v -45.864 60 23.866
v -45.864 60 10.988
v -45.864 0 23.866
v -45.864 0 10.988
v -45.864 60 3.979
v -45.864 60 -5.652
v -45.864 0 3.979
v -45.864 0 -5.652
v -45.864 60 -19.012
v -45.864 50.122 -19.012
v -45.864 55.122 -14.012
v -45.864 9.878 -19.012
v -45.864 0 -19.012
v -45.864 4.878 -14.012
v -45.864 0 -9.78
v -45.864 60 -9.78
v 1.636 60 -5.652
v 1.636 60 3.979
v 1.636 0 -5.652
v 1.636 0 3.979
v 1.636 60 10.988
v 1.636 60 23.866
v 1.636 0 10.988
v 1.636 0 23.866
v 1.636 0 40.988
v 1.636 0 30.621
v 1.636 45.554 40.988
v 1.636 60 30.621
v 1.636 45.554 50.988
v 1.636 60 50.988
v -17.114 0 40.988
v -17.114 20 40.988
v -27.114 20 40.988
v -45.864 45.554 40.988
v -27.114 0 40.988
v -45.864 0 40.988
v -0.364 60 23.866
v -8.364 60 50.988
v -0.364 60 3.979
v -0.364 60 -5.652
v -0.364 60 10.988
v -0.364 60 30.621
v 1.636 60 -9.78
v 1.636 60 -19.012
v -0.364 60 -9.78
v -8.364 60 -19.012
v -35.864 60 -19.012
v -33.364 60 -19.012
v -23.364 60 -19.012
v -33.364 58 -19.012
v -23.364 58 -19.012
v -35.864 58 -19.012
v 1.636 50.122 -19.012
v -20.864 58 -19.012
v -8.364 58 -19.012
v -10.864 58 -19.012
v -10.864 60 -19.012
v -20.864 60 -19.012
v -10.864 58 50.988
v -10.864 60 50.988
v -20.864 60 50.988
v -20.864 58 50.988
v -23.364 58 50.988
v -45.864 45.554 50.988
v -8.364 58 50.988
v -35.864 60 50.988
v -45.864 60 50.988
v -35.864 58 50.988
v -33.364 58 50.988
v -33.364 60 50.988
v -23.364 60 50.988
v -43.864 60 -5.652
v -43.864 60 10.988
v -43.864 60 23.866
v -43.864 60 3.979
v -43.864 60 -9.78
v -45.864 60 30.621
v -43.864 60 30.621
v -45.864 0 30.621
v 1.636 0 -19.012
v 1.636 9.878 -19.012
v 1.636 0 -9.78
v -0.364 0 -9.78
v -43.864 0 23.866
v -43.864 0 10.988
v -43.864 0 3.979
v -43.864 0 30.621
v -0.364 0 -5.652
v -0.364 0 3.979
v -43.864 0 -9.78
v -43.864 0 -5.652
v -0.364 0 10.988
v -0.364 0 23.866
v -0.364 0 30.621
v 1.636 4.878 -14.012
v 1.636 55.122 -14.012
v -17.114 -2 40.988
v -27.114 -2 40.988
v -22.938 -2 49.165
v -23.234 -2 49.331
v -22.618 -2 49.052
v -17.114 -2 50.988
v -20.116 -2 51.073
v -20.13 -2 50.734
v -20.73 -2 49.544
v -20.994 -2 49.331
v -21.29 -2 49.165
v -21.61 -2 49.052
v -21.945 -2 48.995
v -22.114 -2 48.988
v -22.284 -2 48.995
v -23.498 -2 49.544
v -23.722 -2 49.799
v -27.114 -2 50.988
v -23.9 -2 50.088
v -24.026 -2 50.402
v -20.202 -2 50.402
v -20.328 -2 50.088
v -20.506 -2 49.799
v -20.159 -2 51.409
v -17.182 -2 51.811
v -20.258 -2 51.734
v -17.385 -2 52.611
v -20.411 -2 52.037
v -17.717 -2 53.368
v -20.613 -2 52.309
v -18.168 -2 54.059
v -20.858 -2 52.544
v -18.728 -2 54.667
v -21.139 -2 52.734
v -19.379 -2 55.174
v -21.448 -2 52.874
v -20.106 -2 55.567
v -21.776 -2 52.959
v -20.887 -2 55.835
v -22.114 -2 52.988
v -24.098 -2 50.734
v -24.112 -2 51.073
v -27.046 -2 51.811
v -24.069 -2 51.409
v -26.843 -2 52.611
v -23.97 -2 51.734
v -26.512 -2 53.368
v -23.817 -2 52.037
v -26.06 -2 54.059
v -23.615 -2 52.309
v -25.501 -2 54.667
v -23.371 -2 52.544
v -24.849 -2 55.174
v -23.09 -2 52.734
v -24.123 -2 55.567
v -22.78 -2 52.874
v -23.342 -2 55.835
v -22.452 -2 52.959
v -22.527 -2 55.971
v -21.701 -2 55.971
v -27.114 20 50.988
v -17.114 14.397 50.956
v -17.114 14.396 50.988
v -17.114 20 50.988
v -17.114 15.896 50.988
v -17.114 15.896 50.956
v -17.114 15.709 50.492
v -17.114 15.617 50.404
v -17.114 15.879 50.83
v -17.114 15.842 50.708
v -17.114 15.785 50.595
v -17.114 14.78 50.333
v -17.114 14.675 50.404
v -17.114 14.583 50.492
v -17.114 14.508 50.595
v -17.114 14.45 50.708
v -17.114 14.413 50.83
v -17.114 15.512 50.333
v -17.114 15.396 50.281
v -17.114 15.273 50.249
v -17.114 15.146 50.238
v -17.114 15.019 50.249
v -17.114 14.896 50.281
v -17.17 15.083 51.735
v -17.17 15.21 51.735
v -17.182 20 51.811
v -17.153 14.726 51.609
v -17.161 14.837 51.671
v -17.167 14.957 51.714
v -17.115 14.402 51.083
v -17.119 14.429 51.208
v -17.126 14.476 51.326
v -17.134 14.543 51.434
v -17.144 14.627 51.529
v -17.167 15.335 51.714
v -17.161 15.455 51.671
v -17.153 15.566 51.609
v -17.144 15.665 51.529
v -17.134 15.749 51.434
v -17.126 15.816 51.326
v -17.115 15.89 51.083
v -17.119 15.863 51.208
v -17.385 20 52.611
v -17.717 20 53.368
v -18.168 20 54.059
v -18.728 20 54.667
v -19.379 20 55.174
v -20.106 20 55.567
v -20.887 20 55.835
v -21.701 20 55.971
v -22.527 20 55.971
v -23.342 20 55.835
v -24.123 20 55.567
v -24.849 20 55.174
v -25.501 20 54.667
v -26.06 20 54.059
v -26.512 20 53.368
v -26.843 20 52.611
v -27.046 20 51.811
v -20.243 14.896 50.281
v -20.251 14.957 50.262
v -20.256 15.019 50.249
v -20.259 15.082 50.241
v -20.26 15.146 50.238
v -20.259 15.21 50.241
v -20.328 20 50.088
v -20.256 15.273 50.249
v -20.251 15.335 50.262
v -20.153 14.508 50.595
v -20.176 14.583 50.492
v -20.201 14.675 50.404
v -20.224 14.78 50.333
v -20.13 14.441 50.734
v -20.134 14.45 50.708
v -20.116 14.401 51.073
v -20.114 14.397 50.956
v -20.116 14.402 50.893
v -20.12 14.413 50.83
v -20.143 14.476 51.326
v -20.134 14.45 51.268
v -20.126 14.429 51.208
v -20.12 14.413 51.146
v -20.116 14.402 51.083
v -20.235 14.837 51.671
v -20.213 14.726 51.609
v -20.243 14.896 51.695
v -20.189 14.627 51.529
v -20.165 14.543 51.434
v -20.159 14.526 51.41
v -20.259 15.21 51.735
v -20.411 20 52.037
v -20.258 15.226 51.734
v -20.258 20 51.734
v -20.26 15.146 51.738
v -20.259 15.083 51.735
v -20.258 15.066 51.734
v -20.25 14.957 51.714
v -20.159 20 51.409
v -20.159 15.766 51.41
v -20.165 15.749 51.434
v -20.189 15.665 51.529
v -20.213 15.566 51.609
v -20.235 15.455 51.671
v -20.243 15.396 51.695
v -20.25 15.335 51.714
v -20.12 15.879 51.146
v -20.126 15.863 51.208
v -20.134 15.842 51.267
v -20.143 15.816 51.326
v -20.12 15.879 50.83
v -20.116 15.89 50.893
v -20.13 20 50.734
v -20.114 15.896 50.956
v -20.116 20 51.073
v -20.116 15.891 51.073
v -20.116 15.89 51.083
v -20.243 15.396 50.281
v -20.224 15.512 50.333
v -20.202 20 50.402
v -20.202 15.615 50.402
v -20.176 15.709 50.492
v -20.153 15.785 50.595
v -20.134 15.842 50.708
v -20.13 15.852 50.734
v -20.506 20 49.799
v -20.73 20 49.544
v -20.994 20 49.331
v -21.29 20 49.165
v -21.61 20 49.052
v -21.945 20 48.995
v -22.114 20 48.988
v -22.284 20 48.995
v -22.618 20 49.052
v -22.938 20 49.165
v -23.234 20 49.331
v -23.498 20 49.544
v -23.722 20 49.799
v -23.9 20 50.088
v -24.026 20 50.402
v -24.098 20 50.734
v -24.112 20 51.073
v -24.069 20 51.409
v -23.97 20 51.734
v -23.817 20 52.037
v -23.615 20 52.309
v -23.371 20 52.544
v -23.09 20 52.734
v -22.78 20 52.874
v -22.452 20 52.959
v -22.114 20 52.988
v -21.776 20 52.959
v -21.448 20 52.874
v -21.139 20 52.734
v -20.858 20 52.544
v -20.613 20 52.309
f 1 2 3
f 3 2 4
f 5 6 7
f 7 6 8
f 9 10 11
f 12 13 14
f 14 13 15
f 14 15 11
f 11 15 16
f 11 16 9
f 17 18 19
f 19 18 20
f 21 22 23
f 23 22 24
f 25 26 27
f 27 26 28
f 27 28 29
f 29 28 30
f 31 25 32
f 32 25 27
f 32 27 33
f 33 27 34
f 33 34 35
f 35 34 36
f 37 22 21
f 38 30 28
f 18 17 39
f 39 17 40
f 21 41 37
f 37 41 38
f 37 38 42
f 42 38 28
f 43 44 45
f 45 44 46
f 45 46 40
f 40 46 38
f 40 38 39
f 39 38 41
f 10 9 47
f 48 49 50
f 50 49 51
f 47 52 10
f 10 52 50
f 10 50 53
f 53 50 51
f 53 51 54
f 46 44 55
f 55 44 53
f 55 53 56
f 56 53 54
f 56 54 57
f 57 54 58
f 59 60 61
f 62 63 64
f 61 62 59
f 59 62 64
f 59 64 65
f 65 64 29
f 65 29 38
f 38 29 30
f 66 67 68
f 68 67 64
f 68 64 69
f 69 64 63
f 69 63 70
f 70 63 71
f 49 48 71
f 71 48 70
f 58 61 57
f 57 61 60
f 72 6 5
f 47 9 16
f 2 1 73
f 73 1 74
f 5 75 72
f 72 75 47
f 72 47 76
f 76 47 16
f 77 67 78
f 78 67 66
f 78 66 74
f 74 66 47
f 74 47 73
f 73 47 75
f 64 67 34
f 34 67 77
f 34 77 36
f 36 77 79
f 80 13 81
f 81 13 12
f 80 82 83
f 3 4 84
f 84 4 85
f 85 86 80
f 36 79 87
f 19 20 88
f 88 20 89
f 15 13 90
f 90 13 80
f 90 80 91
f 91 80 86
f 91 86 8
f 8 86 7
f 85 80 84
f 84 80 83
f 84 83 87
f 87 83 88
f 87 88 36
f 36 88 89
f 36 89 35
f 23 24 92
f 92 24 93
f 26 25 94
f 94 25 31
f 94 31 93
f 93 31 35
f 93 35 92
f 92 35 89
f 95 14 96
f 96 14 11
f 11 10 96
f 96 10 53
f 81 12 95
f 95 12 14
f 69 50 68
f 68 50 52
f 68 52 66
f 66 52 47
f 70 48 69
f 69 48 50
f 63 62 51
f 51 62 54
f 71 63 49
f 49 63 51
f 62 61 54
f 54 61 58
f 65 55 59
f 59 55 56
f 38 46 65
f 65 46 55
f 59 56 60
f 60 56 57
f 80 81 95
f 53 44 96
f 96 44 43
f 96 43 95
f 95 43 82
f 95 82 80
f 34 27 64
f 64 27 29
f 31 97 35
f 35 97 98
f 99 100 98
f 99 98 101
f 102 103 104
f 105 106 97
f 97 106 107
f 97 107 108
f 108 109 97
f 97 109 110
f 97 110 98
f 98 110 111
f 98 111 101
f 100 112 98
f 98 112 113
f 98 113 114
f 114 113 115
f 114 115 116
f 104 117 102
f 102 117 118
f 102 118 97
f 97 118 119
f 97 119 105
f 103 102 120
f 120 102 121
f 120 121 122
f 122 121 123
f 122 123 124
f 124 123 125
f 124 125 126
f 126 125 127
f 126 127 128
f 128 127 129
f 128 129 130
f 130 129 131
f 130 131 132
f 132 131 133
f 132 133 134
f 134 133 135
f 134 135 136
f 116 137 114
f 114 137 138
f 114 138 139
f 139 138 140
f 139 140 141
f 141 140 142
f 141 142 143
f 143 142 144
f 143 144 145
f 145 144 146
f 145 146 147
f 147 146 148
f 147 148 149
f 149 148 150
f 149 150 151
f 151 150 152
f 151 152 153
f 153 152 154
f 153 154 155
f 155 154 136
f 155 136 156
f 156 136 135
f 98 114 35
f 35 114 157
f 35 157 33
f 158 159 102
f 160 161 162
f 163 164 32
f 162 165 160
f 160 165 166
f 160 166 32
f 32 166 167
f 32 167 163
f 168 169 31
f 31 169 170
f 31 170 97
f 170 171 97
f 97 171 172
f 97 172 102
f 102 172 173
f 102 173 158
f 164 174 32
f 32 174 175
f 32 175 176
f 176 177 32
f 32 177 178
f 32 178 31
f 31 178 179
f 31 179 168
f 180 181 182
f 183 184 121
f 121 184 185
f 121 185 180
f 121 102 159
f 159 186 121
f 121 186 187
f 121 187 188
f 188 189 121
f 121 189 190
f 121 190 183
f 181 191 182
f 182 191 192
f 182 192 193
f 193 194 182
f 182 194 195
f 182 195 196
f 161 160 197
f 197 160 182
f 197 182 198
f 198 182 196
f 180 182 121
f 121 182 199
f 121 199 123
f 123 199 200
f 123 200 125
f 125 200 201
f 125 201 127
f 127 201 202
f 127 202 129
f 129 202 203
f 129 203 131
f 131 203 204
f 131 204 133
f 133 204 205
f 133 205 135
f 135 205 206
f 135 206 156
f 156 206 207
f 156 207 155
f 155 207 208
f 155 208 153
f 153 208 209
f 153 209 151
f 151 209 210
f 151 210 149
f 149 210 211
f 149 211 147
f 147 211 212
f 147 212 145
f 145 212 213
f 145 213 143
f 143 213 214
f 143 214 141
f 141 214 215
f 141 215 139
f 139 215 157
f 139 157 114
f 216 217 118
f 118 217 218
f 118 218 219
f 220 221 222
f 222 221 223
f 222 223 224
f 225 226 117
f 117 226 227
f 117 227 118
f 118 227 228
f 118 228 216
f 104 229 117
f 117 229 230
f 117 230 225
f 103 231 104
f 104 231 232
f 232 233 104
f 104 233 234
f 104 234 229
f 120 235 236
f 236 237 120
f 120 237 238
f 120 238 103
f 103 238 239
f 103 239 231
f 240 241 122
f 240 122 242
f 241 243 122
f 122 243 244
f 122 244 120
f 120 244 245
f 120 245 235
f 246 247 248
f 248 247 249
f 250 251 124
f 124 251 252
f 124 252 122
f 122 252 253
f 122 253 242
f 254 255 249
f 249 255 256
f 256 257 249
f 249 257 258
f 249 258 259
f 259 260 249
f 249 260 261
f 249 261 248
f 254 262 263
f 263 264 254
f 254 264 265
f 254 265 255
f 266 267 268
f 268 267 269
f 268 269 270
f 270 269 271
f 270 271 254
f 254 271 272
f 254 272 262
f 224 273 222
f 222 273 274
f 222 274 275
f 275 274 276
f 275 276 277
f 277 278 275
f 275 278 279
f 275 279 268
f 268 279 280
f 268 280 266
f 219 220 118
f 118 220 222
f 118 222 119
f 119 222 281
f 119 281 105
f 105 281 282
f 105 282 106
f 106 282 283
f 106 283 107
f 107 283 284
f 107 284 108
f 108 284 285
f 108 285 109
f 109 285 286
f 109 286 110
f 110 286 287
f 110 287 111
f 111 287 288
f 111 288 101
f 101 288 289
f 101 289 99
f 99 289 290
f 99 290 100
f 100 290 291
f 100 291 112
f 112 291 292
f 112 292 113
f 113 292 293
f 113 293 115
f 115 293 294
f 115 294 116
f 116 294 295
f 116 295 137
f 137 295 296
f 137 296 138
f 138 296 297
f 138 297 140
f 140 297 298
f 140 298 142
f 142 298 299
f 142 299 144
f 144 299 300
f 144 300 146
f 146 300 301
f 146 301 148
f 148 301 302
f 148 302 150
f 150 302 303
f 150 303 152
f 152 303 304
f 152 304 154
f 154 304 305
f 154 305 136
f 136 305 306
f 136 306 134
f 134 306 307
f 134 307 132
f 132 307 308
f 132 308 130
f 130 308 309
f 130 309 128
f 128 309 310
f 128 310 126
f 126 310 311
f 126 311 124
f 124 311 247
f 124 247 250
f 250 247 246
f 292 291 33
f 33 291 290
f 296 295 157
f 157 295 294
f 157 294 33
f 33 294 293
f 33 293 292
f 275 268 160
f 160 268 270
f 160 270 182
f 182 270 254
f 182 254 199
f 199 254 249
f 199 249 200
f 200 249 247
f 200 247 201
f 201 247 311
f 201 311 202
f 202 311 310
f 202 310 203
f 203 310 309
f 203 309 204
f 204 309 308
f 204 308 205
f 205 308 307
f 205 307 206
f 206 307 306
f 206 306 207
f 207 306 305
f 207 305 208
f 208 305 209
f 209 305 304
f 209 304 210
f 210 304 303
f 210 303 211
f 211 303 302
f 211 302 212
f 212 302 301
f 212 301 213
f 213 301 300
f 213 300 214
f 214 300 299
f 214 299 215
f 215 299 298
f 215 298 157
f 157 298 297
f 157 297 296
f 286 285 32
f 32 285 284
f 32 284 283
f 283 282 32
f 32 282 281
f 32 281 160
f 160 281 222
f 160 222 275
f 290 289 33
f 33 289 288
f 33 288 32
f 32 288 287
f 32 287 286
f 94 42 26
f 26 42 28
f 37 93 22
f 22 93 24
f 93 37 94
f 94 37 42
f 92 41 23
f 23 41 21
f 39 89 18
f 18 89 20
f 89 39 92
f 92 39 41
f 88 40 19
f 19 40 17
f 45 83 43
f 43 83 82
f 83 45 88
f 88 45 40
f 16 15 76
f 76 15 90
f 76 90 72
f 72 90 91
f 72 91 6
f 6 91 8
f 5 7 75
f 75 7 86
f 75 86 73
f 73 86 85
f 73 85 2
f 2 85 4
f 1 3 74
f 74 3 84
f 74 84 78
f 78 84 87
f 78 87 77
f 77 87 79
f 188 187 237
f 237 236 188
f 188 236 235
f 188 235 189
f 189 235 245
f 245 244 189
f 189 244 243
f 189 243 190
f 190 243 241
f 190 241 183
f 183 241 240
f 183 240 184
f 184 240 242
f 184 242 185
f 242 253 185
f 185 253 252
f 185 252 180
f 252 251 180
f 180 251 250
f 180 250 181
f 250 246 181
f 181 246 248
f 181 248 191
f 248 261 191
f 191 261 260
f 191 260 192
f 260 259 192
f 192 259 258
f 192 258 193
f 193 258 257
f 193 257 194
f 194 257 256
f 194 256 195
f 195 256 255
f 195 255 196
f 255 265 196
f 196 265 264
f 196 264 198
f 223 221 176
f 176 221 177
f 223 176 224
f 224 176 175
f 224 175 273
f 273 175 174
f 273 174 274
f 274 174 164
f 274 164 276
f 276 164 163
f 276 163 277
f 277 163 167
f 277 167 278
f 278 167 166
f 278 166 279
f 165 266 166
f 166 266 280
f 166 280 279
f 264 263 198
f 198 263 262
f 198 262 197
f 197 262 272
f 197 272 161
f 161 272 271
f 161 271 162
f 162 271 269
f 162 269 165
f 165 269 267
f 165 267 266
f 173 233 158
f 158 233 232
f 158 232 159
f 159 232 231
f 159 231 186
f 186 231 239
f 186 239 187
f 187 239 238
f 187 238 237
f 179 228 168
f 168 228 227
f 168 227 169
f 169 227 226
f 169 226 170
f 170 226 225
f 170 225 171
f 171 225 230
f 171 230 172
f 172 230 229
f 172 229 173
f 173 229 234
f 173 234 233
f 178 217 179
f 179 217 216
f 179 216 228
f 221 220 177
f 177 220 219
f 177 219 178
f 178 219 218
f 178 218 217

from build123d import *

# Parameters (mm, degrees)
SKETCH1_W                = 50
SKETCH1_H                = 70
BOSS_EXTRUDE1_DEPTH      = 60
CUT_EXTRUDE1_DEPTH       = 60
SKETCH4_W                = 2.5
SKETCH4_H                = 2
SKETCH4_H_2              = 60
CUT_EXTRUDE2_DEPTH       = 95
SKETCH7_W                = 47.5
SKETCH7_H                = 45.554164346
CUT_EXTRUDE3_DEPTH       = 10
SKETCH8_R                = 2
BOSS_EXTRUDE2_DEPTH      = 2
BOSS_EXTRUDE2_DEPTH_BACK = 20
SKETCH9_W                = 6.754259693
SKETCH9_H                = 60
SKETCH9_W_2              = 7.009150451
SKETCH9_W_3              = 4.127603145
CUT_EXTRUDE4_DEPTH       = 2
SKETCH10_W               = 2
SKETCH10_H               = 4.127603145
SKETCH10_H_2             = 7.009150451
SKETCH10_H_3             = 6.754259693
CUT_EXTRUDE5_DEPTH       = 71
SKETCH11_R               = 0.75
CUT_EXTRUDE6_DEPTH       = 4


with BuildPart() as part:
    # Sketch1 → Boss-Extrude1 (new body)
    with BuildSketch(Plane(origin=(0, 0, 0), x_dir=(1, 0, 0), z_dir=(0, 1, 0))):
        with Locations((-20.864146805, -15.987939145)):
            Rectangle(SKETCH1_W, SKETCH1_H)
    extrude(amount=BOSS_EXTRUDE1_DEPTH)

    # Sketch2 → Cut-Extrude1 (cut)
    with BuildSketch(Plane(origin=(4.135853195, 0, 0), x_dir=(0, 0, -1), z_dir=(1, 0, 0))):
        Polygon((19.012060855, 50.122083557), (14.012060855, 55.122083557), (14.012060855, 4.877916443), (19.012060855, 9.877916443), align=None)
    extrude(amount=-CUT_EXTRUDE1_DEPTH, mode=Mode.SUBTRACT)

    # Sketch4 → Cut-Extrude2 (cut)
    with BuildSketch(Plane.XY.offset(50.987939145)):
        with Locations((-34.614146805, 59)):
            Rectangle(SKETCH4_W, SKETCH4_H)
        with Locations((-22.114146805, 59)):
            Rectangle(SKETCH4_W, SKETCH4_H)
        with Locations((-9.614146805, 59)):
            Rectangle(SKETCH4_W, SKETCH4_H)
        with Locations((2.885853195, 30)):
            Rectangle(SKETCH4_W, SKETCH4_H_2)
    extrude(amount=-CUT_EXTRUDE2_DEPTH, mode=Mode.SUBTRACT)

    # Sketch7 → Cut-Extrude3 (cut)
    with BuildSketch(Plane.XY.offset(50.987939145)):
        with Locations((-22.114146805, 22.777082173)):
            Rectangle(SKETCH7_W, SKETCH7_H)
    extrude(amount=-CUT_EXTRUDE3_DEPTH, mode=Mode.SUBTRACT)

    # Sketch8 → Boss-Extrude2 (add, two sides)
    with BuildSketch(Plane.XZ) as boss_extrude2_sk:
        with BuildLine():
            Line((-17.114146805, 40.987939145), (-27.114146805, 40.987939145))
            Line((-27.114146805, 40.987939145), (-27.114146805, 50.987939145))
            ThreePointArc((-27.114146805, 50.987939145), (-22.114146805, 55.987939145), (-17.114146805, 50.987939145))
            Line((-17.114146805, 50.987939145), (-17.114146805, 40.987939145))
        make_face()
        with Locations((-22.114146805, 50.987939145)):
            Circle(SKETCH8_R, mode=Mode.SUBTRACT)
    extrude(amount=BOSS_EXTRUDE2_DEPTH)
    extrude(boss_extrude2_sk.sketch, amount=-BOSS_EXTRUDE2_DEPTH_BACK)

    # Sketch9 → Cut-Extrude4 (cut)
    with BuildSketch(Plane(origin=(1.635853195, 0, 0), x_dir=(0, 0, -1), z_dir=(1, 0, 0))):
        with Locations((-27.243460969, 30)):
            Rectangle(SKETCH9_W, SKETCH9_H)
        with Locations((-7.48336392, 30)):
            Rectangle(SKETCH9_W_2, SKETCH9_H)
        with Locations((7.716086886, 30)):
            Rectangle(SKETCH9_W_3, SKETCH9_H)
    extrude(amount=-CUT_EXTRUDE4_DEPTH, mode=Mode.SUBTRACT)

    # Sketch10 → Cut-Extrude5 (cut)
    with BuildSketch(Plane(origin=(0, 60, 0), x_dir=(1, 0, 0), z_dir=(0, 1, 0))):
        with Locations((-44.864146805, 7.716086886)):
            Rectangle(SKETCH10_W, SKETCH10_H)
        with Locations((-44.864146805, -7.48336392)):
            Rectangle(SKETCH10_W, SKETCH10_H_2)
        with Locations((-44.864146805, -27.243460969)):
            Rectangle(SKETCH10_W, SKETCH10_H_3)
    extrude(amount=-CUT_EXTRUDE5_DEPTH, mode=Mode.SUBTRACT)

    # Sketch11 → Cut-Extrude6 (cut)
    with BuildSketch(Plane(origin=(-17.114146805, 0, 0), x_dir=(0, 0, -1), z_dir=(1, 0, 0))):
        with Locations((-50.987939145, 15.146186294)):
            Circle(SKETCH11_R)
    extrude(amount=-CUT_EXTRUDE6_DEPTH, mode=Mode.SUBTRACT)


solid = part.part
